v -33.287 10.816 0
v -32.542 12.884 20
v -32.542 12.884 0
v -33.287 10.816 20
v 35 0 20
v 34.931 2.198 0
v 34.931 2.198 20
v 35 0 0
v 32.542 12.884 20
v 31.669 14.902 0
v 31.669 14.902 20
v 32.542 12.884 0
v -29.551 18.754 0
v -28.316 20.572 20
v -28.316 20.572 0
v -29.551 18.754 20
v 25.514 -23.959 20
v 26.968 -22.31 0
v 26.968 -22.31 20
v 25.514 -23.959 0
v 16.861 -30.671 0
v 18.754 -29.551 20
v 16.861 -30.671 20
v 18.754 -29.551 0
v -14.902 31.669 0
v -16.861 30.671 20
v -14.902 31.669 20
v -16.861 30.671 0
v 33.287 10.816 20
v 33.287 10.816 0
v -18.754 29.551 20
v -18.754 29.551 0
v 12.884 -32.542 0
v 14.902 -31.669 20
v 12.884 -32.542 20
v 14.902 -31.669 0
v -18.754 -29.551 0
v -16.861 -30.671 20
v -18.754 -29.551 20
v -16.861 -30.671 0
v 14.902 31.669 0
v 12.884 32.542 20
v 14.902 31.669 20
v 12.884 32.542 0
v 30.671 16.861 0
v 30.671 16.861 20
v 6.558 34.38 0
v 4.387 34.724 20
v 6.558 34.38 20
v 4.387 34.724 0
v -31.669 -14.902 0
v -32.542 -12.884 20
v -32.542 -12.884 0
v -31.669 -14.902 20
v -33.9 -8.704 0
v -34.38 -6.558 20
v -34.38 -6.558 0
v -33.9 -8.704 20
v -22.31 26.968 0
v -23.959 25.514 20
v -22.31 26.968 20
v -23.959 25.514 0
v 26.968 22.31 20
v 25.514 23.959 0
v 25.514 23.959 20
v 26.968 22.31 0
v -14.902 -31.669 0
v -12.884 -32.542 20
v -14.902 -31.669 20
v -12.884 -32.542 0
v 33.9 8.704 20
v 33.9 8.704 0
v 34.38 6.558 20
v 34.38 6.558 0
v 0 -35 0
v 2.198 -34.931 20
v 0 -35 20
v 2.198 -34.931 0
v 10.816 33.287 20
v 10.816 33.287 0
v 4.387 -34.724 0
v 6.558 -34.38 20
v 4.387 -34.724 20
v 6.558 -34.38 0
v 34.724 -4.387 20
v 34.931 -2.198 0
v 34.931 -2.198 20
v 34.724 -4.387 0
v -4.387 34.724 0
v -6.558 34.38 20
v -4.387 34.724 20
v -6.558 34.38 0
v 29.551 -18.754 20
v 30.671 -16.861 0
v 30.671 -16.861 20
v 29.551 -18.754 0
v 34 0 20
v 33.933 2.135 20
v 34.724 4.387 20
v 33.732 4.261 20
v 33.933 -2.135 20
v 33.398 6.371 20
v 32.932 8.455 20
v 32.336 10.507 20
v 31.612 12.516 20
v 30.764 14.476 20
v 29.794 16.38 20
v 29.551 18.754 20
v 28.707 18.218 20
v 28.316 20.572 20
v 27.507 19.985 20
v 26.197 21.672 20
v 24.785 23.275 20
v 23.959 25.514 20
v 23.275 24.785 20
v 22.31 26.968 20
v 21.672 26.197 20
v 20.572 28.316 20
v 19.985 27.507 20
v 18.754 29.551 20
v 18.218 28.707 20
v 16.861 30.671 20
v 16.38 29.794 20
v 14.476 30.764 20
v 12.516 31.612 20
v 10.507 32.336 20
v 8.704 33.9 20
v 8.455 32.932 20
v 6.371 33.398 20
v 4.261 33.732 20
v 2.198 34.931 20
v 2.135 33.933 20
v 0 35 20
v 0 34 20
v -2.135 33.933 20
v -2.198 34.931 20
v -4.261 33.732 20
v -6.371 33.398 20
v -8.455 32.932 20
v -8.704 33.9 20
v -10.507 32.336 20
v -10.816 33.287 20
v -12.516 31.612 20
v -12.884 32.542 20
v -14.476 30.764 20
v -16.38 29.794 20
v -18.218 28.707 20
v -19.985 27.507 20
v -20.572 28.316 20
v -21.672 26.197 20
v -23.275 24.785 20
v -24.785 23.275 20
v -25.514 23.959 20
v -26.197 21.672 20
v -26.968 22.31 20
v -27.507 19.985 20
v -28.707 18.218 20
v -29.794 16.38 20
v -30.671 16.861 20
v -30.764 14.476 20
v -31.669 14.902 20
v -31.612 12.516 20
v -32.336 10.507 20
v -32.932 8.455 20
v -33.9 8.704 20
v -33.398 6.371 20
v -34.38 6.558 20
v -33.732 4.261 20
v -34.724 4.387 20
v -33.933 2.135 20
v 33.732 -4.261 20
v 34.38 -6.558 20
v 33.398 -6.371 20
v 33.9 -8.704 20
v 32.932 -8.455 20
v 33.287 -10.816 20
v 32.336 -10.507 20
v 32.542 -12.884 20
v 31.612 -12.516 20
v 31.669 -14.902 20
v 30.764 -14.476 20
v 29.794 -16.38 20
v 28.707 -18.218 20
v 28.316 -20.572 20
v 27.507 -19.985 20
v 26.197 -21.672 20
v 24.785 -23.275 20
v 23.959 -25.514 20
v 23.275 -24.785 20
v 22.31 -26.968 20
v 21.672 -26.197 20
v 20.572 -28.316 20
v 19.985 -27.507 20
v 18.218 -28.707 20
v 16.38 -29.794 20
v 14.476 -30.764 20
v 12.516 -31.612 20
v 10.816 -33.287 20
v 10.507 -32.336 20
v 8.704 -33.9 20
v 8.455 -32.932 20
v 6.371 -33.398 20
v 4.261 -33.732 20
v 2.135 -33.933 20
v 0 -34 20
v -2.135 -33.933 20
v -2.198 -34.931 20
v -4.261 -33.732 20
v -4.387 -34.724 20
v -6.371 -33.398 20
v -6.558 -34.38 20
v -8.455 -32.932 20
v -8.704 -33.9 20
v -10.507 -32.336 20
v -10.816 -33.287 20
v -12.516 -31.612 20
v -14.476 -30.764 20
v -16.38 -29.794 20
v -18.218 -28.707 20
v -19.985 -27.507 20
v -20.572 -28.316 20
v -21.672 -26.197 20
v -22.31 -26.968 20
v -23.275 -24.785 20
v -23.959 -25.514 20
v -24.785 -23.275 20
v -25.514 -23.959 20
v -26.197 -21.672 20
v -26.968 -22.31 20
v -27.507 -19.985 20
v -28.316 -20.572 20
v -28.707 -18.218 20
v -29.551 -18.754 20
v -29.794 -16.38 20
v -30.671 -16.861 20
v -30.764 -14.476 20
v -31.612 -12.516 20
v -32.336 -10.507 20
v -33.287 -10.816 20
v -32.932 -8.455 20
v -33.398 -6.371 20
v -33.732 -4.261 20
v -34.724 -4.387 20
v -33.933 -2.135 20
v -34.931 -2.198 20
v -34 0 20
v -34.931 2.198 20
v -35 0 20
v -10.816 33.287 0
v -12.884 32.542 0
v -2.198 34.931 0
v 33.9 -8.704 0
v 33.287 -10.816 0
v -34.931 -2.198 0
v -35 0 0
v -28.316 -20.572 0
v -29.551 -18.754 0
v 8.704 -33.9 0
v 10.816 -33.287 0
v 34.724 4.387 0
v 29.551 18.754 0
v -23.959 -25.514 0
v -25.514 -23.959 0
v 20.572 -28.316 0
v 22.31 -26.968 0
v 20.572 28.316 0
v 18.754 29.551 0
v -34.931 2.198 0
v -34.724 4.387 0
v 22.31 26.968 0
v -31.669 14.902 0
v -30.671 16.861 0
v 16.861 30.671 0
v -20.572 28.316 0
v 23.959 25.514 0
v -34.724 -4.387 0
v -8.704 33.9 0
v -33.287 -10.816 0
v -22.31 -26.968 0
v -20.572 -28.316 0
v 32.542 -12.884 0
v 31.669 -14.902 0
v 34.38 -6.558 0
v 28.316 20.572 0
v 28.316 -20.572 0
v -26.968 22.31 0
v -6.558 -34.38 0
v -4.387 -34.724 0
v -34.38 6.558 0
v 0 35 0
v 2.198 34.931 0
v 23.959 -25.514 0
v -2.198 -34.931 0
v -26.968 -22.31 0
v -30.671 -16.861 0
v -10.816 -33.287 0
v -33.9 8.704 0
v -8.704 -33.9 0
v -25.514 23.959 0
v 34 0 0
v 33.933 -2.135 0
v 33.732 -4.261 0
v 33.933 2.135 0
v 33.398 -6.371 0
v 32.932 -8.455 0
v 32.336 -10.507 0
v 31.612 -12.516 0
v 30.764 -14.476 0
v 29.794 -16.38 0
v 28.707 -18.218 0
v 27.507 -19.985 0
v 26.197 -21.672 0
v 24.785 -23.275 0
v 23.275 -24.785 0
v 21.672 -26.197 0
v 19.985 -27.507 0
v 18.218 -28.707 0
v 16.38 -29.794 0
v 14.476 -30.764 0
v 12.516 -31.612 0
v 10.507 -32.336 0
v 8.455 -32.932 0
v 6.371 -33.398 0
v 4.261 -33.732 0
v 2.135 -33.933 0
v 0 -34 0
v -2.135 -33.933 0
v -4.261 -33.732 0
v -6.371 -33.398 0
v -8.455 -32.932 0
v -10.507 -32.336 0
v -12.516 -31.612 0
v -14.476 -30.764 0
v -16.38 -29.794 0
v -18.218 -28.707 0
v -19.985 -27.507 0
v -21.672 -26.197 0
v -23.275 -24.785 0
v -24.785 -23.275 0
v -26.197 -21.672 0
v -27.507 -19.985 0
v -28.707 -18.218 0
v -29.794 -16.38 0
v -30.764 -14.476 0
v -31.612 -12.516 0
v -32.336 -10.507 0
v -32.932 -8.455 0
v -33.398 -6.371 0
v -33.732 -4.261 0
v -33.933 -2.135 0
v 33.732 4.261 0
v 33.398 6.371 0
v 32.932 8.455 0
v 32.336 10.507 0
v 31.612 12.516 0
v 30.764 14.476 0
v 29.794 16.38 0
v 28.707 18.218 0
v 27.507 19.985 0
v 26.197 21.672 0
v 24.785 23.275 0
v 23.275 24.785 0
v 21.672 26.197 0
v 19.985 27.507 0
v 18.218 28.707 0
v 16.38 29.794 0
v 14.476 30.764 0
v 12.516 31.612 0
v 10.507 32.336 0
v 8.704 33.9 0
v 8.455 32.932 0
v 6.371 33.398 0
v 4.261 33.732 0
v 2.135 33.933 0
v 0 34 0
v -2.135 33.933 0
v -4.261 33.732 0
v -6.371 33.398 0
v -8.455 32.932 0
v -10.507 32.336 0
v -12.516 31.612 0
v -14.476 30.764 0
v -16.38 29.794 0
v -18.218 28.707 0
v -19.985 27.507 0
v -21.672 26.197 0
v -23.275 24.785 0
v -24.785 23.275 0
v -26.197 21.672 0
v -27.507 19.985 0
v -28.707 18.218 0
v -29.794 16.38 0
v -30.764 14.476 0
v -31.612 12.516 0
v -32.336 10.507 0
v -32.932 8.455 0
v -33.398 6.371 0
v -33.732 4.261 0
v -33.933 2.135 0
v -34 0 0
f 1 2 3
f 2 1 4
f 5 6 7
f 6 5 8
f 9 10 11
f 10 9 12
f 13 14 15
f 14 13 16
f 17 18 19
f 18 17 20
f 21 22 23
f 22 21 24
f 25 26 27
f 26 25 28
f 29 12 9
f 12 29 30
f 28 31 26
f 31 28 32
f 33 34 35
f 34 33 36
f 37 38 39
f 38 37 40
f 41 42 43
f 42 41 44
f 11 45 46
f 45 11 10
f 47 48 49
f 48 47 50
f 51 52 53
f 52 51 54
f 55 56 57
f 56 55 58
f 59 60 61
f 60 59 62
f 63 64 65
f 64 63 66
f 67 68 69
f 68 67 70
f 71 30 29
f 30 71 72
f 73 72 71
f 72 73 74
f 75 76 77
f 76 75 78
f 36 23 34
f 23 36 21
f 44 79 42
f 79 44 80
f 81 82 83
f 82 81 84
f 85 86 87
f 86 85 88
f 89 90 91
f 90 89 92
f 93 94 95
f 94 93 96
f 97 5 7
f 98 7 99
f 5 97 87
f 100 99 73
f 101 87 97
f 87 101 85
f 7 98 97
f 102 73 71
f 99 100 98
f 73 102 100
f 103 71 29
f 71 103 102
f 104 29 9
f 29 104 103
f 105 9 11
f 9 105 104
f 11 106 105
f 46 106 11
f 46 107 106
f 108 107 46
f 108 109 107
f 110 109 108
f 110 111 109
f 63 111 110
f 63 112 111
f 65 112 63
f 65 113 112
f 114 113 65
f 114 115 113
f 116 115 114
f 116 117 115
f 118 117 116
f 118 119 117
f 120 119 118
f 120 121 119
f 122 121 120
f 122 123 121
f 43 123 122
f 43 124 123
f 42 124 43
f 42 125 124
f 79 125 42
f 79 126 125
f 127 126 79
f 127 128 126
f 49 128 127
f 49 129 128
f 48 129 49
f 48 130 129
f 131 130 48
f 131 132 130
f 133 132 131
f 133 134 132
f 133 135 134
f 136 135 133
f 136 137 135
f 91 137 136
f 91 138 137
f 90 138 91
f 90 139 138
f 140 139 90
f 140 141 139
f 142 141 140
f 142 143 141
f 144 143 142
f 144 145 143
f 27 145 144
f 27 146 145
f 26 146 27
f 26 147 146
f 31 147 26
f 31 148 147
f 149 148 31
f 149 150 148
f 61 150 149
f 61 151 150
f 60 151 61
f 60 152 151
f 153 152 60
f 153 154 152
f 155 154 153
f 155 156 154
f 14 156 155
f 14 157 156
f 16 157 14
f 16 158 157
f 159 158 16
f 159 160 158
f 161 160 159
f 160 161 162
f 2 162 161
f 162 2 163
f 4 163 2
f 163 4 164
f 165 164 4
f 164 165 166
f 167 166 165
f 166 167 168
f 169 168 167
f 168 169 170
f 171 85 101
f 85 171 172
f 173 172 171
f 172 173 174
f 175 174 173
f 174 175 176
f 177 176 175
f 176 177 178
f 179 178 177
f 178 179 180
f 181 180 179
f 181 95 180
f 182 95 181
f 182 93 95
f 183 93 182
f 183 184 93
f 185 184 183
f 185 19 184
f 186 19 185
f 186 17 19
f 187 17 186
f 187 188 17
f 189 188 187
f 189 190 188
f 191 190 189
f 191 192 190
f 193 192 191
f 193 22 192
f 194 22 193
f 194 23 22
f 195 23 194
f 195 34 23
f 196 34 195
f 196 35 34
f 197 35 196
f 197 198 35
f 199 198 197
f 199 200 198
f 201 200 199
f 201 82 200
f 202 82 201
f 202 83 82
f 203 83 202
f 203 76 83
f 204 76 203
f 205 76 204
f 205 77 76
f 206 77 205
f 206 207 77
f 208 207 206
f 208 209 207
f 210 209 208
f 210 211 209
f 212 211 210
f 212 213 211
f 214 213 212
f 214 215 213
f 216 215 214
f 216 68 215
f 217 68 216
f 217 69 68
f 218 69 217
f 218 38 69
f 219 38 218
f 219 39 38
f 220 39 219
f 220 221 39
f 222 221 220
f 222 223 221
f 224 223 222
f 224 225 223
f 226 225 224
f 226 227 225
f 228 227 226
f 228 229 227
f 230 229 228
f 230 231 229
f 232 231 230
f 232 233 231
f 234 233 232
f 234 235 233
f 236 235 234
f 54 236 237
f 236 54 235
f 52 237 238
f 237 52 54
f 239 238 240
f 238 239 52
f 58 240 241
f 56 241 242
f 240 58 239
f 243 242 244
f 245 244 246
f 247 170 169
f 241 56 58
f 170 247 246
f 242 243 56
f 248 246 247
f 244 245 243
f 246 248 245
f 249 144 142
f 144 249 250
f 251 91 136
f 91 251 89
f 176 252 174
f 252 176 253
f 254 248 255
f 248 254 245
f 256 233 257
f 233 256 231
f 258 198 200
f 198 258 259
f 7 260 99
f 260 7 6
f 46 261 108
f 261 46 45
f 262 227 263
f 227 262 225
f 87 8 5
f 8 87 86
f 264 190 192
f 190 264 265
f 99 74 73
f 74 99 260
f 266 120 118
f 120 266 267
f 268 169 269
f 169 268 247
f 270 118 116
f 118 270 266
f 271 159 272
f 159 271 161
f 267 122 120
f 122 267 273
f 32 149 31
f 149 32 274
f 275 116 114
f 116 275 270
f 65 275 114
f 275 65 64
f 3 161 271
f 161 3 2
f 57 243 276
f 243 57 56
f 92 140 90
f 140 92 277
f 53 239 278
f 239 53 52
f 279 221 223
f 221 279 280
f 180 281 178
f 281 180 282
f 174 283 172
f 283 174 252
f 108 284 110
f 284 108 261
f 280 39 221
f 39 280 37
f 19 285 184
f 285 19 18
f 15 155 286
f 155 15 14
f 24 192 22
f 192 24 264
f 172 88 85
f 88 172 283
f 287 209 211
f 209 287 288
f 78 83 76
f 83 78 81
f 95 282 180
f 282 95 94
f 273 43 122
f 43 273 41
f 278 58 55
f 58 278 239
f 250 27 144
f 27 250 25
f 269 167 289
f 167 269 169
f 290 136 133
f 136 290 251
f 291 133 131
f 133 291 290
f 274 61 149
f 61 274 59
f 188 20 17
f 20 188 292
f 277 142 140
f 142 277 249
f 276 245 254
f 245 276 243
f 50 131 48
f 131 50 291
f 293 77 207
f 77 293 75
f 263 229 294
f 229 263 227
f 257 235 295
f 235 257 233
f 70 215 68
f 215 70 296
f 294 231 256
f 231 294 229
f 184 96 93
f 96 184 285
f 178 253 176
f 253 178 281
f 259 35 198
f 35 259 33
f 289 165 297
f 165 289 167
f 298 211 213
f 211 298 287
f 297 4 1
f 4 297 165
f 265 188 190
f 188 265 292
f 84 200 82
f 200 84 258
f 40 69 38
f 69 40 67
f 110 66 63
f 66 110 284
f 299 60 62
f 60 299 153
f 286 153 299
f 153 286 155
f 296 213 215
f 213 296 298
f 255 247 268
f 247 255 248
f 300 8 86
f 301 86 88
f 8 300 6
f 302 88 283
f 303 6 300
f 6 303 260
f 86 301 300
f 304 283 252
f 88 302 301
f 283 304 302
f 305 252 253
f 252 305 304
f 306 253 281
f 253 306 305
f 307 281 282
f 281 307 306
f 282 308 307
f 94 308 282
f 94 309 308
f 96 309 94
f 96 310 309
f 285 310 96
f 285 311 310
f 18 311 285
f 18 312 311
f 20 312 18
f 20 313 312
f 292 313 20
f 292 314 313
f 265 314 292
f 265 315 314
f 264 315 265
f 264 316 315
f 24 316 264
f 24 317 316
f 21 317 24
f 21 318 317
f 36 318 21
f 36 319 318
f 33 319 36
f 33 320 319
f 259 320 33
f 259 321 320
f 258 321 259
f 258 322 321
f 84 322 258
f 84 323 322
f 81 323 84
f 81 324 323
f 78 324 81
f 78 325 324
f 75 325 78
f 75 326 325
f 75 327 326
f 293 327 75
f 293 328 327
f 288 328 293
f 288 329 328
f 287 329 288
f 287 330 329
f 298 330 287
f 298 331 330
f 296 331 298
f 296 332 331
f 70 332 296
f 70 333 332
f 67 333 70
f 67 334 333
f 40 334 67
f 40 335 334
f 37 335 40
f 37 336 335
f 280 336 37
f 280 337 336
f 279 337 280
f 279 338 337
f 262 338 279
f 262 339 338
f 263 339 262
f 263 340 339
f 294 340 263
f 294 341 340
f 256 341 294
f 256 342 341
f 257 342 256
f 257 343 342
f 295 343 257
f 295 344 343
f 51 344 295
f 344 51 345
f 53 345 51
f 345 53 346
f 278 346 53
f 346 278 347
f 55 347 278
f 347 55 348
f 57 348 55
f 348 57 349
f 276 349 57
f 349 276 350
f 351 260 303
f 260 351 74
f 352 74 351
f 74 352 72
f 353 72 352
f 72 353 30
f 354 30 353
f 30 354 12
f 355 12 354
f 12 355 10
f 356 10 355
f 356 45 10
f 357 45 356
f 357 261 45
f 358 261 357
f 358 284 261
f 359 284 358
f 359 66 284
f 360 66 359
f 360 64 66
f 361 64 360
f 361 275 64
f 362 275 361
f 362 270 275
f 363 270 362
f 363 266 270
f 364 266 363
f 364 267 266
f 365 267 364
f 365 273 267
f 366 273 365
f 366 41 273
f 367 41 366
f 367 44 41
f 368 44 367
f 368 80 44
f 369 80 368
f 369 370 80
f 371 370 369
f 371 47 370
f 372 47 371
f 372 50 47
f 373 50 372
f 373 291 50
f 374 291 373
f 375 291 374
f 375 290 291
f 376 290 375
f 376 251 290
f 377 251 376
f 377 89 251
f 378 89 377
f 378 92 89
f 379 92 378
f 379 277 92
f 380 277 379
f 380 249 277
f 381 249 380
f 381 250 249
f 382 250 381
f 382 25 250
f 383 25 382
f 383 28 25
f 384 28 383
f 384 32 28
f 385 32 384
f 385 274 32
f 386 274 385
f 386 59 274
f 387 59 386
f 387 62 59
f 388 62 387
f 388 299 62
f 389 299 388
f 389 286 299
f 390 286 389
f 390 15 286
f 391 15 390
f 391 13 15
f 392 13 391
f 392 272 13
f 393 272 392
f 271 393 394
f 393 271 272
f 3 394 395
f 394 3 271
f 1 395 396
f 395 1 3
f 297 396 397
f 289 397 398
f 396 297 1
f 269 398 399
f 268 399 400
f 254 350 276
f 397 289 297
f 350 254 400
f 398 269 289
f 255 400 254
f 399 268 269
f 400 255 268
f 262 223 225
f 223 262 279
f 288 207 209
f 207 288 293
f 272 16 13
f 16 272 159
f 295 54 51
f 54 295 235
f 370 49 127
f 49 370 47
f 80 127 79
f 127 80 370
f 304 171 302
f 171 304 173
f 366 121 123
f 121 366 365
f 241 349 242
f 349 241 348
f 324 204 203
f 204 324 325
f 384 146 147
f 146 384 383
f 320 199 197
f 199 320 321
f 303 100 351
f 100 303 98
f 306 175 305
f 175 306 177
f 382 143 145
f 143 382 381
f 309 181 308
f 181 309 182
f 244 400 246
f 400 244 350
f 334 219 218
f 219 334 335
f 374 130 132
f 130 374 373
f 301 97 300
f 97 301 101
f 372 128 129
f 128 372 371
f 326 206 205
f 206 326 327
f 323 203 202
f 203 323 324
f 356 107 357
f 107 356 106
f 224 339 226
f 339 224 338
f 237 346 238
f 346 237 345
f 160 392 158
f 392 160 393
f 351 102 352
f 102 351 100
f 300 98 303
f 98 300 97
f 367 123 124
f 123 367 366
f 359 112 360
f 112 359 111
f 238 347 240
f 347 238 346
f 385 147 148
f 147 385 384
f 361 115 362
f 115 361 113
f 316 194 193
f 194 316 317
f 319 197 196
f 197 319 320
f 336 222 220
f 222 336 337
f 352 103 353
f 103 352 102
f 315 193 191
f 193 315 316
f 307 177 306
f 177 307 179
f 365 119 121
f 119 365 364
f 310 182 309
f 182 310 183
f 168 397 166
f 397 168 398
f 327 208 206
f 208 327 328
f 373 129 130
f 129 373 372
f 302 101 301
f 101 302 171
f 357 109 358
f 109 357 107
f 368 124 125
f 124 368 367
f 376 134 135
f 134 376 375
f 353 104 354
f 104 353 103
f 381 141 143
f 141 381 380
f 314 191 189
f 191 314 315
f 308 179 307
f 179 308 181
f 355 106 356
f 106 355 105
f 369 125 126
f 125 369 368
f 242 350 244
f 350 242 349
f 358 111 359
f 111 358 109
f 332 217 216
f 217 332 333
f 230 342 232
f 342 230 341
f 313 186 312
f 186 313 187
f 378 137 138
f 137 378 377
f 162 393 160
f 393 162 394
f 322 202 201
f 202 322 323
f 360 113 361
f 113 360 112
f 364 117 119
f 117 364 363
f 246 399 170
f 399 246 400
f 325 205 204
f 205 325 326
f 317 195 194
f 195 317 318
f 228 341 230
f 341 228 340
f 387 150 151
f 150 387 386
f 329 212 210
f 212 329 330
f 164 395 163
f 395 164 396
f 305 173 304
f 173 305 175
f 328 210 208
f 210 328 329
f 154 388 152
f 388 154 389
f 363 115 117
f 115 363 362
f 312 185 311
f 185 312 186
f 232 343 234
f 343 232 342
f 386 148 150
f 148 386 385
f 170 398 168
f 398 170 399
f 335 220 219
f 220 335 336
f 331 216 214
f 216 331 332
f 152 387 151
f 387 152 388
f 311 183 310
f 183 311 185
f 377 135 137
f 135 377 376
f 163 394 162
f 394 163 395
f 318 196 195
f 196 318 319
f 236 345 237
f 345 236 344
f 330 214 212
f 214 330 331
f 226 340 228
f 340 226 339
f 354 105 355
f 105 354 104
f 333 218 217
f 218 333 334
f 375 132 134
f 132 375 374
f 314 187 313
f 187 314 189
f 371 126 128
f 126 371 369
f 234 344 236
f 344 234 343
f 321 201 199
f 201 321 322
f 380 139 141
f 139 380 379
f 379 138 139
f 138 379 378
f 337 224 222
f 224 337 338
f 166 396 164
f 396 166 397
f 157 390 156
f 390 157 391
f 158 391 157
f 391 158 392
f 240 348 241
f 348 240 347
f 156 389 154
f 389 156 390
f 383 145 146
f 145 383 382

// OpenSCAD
// file: OpenScad-Pattern-Filling/pattern.scad
// Rozmístí 2D tvar po obdélníku. O laseru ani o krabičce nic neví.
// Jednotky jsou milimetry. Souřadnice jdou od levého dolního rohu plochy.
//
// shape: circle, square, diamond, slot, svg
// svg: cesta k souboru, když je shape "svg". OpenSCAD ji bere vůči
// souboru, který otevíráš, ne vůči této knihovně.
// pitch je rozteč středů v mm. count 0 znamená „kolik se vejde“.
// stagger: none, horizontal, vertical, both. Posun je vždy půl rozteče.
// rotate_step otáčí každý další kus ve stupních.

module pattern_tile(shape, svg, size) {
    if (shape == "square")
        square([size, size], center = true);
    else if (shape == "slot") {
        radius = min(size * 0.28, size / 2);
        hull() {
            translate([-size / 2 + radius, 0])
                circle(r = radius);
            translate([size / 2 - radius, 0])
                circle(r = radius);
        }
    } else if (shape == "diamond")
        polygon([[0, size / 2], [size / 2, 0], [0, -size / 2], [-size / 2, 0]]);
    else if (shape == "svg" && len(svg) > 0)
        resize([size, size], auto = true)
            import(svg, center = true);
    else if (shape != "svg")
        circle(d = size);
}

// Plocha, do které se vzor vejde. round zkulatí rohy o corner_radius.
module pattern_bounds(width, height, margin = 0, corners = "sharp", corner_radius = 0) {
    $fn = 32;
    w = width - 2 * margin;
    h = height - 2 * margin;
    radius = corners == "round" ? min(max(corner_radius, 0), min(w, h) / 2) : 0;
    if (w > 0 && h > 0)
        translate([margin, margin])
            if (radius > 0)
                translate([radius, radius])
                    offset(r = radius)
                        square([max(w - 2 * radius, 0.01), max(h - 2 * radius, 0.01)]);
            else
                square([w, h]);
}

module pattern_grid(
    width,
    height,
    shape = "circle",
    svg = "",
    size = 8,
    margin = 6,
    pitch_x = 16,
    pitch_y = 16,
    stagger = "none",
    rotate_step = 0,
    count_x = 0,
    count_y = 0,
    clip = "fit",
    corners = "sharp",
    corner_radius = 0
) {
    $fn = 32;
    usable_w = width - 2 * margin;
    usable_h = height - 2 * margin;
    step_x = max(pitch_x, 0.1);
    step_y = max(pitch_y, 0.1);
    extra_x = (stagger == "horizontal" || stagger == "both") ? step_x / 2 : 0;
    extra_y = (stagger == "vertical" || stagger == "both") ? step_y / 2 : 0;
    clipping = clip == "clip";

    module cells(cols, rows, x0, y0, keep_inside) {
        if (cols > 0 && rows > 0)
            for (r = [0 : rows - 1])
                for (c = [0 : cols - 1]) {
                    shift_x = extra_x > 0 && r % 2 == 1 ? extra_x : 0;
                    shift_y = extra_y > 0 && c % 2 == 1 ? extra_y : 0;
                    x = x0 + c * step_x + shift_x;
                    y = y0 + r * step_y + shift_y;
                    if (!keep_inside
                        || (x - size / 2 >= margin - 0.01
                            && x + size / 2 <= width - margin + 0.01
                            && y - size / 2 >= margin - 0.01
                            && y + size / 2 <= height - margin + 0.01))
                        translate([x, y])
                            rotate((r * cols + c) * rotate_step)
                                pattern_tile(shape, svg, size);
                }
    }

    if (usable_w > 0 && usable_h > 0 && size > 0) {
        if (clipping) {
            // Základní mřížka (bez posunu) má střed uprostřed plochy.
            // Posun o půl rozteče je pak souměrný podle toho středu a ořez
            // sedí naproti sobě. U svislého posunu musí být sloupců lichý
            // počet, u vodorovného řad, jinak se sudé a liché řady po
            // otočení nesejdou.
            raw_cols = count_x > 0 ? count_x : ceil((usable_w + size) / step_x) + 1;
            raw_rows = count_y > 0 ? count_y : ceil((usable_h + size) / step_y) + 1;
            cols = extra_y > 0 && raw_cols % 2 == 0 ? raw_cols + 1 : raw_cols;
            rows = extra_x > 0 && raw_rows % 2 == 0 ? raw_rows + 1 : raw_rows;
            intersection() {
                cells(
                    cols, rows,
                    margin + usable_w / 2 - (cols - 1) * step_x / 2,
                    margin + usable_h / 2 - (rows - 1) * step_y / 2,
                    false
                );
                pattern_bounds(width, height, margin, corners, corner_radius);
            }
        } else if (usable_w >= size && usable_h >= size) {
            fit_cols = floor((usable_w - size - extra_x) / step_x + 1.0001);
            fit_rows = floor((usable_h - size - extra_y) / step_y + 1.0001);
            cols = count_x > 0 ? count_x : max(0, fit_cols);
            rows = count_y > 0 ? count_y : max(0, fit_rows);
            span_x = (cols - 1) * step_x + extra_x + size;
            span_y = (rows - 1) * step_y + extra_y + size;
            cells(
                cols, rows,
                margin + max(0, (usable_w - span_x) / 2) + size / 2,
                margin + max(0, (usable_h - span_y) / 2) + size / 2,
                true
            );
        }
    }
}
// main file
 $fn=100;
 
 use <OpenScad-Pattern-Filling/pattern.scad>

 difference() {
    cylinder(h=20, r=35);
    translate([0,0,-2]) cylinder(h=30, r=34, $fn=100);
 }
 
 // Define the base shape: a very modern moucharabieh
module moucharabieh(l = 10, w = 1) {
  // epsilon is an infinitesimally small value that is added to the outter
  // surfaces in order to get rid of the zero thickness artifacts induced
  // by the "difference" operation.
  epsilon = 0.1;

  difference() {
    // start with a plain square
    square([ l, l ], center=true);

    // and then dig the holes in it
    union() {
      for(i = [0 : 3]) {
        rotate([ 0, 0, i*90 ])
        union() {
          translate([ l / 2 - w, l / 2 - w])
            square([w + epsilon, w + epsilon]);
          translate([ -l / 2 + 2 * w, l / 2 - w])
            square([ l - 4 * w, w + epsilon ]);
          translate([ -l / 2 + 2 * w, -l / 2 + 2 * w ])
            square([ w, w ]);
          translate([ -l / 2 + 2 * w, -l / 2 + 3 * w, 0 ])
            rotate([ 0, 0, -45 ])
              square([ sqrt(2 * pow(w, 2)), sqrt(pow(l/2 - 3*w, 2) + pow(l / 2 - 3 * w, 2)) - w]);
          polygon(points = [ [ 0, w + sqrt(2 * w) ],
                             [ l / 2 - (w + sqrt(2 * w)), l/2],
                             [ -l/2 + (w + sqrt(2 * w)), l/2 ] ]);
        }
      }
      rotate([ 0, 0, 45 ]) square([ sqrt(2 * w), sqrt(2 * w) ], center=true);
    }
  }
}

// Instanciate the base shape, once.
size = 10;
pr=20;
//moucharabieh(l=size);
    //rotate(180) moucharabieh(l=size);
//    translate([0,0,1.5*pr]) rotate([0,90,0]) moucharabieh(l=size);
    //translate([0,0,1.5*pr]) rotate([0,90,0]) moucharabieh(l=size);
  //  translate([0,0,-1.5*pr]) rotate([0,90,0]) moucharabieh(l=size);
    //translate([0,0,-1.5*pr]) rotate(270) moucharabieh(l=size);


// Define our moves: how the pattern is sprayed
//moves = [
//  [ size, 0 ], // For the first move, we will translate on x by two times the radius
//  [ 0, size ], // For the second move, we will translate on y by two times the radius
//];

// Define the boundaries: the area to spray is defined by a rectangle
//bounding_box = [
//  [ 0, 0 ],     // Lower left corner
//  [ 100, 50 ]   // upper right corner
//];

//translate([ 30, 0, 0 ]) union() {
  // Spray our pattern in the bounding box
  // and extrude it
//  linear_extrude(height = 1)
//    spray_pattern(bounding_box, moves)
//      moucharabieh(l=size, w=1);

  // Build a border around the moucharabieh
 /* border = 5;
  linear_extrude(height = border, center = true) difference() {
    polygon(points = [ bounding_box[0] - [ border, border ],
                       [ bounding_box[0].x - border, bounding_box[1].y + border ],
                       bounding_box[1] + [ border, border ],
                       [ bounding_box[1].x + border, bounding_box[0].y - border ] ]);
    polygon(points = [ bounding_box[0],
                       [ bounding_box[0].x, bounding_box[1].y ],
                       bounding_box[1],
                       [ bounding_box[1].x, bounding_box[0].y ] ]);
  }*/
//} 
